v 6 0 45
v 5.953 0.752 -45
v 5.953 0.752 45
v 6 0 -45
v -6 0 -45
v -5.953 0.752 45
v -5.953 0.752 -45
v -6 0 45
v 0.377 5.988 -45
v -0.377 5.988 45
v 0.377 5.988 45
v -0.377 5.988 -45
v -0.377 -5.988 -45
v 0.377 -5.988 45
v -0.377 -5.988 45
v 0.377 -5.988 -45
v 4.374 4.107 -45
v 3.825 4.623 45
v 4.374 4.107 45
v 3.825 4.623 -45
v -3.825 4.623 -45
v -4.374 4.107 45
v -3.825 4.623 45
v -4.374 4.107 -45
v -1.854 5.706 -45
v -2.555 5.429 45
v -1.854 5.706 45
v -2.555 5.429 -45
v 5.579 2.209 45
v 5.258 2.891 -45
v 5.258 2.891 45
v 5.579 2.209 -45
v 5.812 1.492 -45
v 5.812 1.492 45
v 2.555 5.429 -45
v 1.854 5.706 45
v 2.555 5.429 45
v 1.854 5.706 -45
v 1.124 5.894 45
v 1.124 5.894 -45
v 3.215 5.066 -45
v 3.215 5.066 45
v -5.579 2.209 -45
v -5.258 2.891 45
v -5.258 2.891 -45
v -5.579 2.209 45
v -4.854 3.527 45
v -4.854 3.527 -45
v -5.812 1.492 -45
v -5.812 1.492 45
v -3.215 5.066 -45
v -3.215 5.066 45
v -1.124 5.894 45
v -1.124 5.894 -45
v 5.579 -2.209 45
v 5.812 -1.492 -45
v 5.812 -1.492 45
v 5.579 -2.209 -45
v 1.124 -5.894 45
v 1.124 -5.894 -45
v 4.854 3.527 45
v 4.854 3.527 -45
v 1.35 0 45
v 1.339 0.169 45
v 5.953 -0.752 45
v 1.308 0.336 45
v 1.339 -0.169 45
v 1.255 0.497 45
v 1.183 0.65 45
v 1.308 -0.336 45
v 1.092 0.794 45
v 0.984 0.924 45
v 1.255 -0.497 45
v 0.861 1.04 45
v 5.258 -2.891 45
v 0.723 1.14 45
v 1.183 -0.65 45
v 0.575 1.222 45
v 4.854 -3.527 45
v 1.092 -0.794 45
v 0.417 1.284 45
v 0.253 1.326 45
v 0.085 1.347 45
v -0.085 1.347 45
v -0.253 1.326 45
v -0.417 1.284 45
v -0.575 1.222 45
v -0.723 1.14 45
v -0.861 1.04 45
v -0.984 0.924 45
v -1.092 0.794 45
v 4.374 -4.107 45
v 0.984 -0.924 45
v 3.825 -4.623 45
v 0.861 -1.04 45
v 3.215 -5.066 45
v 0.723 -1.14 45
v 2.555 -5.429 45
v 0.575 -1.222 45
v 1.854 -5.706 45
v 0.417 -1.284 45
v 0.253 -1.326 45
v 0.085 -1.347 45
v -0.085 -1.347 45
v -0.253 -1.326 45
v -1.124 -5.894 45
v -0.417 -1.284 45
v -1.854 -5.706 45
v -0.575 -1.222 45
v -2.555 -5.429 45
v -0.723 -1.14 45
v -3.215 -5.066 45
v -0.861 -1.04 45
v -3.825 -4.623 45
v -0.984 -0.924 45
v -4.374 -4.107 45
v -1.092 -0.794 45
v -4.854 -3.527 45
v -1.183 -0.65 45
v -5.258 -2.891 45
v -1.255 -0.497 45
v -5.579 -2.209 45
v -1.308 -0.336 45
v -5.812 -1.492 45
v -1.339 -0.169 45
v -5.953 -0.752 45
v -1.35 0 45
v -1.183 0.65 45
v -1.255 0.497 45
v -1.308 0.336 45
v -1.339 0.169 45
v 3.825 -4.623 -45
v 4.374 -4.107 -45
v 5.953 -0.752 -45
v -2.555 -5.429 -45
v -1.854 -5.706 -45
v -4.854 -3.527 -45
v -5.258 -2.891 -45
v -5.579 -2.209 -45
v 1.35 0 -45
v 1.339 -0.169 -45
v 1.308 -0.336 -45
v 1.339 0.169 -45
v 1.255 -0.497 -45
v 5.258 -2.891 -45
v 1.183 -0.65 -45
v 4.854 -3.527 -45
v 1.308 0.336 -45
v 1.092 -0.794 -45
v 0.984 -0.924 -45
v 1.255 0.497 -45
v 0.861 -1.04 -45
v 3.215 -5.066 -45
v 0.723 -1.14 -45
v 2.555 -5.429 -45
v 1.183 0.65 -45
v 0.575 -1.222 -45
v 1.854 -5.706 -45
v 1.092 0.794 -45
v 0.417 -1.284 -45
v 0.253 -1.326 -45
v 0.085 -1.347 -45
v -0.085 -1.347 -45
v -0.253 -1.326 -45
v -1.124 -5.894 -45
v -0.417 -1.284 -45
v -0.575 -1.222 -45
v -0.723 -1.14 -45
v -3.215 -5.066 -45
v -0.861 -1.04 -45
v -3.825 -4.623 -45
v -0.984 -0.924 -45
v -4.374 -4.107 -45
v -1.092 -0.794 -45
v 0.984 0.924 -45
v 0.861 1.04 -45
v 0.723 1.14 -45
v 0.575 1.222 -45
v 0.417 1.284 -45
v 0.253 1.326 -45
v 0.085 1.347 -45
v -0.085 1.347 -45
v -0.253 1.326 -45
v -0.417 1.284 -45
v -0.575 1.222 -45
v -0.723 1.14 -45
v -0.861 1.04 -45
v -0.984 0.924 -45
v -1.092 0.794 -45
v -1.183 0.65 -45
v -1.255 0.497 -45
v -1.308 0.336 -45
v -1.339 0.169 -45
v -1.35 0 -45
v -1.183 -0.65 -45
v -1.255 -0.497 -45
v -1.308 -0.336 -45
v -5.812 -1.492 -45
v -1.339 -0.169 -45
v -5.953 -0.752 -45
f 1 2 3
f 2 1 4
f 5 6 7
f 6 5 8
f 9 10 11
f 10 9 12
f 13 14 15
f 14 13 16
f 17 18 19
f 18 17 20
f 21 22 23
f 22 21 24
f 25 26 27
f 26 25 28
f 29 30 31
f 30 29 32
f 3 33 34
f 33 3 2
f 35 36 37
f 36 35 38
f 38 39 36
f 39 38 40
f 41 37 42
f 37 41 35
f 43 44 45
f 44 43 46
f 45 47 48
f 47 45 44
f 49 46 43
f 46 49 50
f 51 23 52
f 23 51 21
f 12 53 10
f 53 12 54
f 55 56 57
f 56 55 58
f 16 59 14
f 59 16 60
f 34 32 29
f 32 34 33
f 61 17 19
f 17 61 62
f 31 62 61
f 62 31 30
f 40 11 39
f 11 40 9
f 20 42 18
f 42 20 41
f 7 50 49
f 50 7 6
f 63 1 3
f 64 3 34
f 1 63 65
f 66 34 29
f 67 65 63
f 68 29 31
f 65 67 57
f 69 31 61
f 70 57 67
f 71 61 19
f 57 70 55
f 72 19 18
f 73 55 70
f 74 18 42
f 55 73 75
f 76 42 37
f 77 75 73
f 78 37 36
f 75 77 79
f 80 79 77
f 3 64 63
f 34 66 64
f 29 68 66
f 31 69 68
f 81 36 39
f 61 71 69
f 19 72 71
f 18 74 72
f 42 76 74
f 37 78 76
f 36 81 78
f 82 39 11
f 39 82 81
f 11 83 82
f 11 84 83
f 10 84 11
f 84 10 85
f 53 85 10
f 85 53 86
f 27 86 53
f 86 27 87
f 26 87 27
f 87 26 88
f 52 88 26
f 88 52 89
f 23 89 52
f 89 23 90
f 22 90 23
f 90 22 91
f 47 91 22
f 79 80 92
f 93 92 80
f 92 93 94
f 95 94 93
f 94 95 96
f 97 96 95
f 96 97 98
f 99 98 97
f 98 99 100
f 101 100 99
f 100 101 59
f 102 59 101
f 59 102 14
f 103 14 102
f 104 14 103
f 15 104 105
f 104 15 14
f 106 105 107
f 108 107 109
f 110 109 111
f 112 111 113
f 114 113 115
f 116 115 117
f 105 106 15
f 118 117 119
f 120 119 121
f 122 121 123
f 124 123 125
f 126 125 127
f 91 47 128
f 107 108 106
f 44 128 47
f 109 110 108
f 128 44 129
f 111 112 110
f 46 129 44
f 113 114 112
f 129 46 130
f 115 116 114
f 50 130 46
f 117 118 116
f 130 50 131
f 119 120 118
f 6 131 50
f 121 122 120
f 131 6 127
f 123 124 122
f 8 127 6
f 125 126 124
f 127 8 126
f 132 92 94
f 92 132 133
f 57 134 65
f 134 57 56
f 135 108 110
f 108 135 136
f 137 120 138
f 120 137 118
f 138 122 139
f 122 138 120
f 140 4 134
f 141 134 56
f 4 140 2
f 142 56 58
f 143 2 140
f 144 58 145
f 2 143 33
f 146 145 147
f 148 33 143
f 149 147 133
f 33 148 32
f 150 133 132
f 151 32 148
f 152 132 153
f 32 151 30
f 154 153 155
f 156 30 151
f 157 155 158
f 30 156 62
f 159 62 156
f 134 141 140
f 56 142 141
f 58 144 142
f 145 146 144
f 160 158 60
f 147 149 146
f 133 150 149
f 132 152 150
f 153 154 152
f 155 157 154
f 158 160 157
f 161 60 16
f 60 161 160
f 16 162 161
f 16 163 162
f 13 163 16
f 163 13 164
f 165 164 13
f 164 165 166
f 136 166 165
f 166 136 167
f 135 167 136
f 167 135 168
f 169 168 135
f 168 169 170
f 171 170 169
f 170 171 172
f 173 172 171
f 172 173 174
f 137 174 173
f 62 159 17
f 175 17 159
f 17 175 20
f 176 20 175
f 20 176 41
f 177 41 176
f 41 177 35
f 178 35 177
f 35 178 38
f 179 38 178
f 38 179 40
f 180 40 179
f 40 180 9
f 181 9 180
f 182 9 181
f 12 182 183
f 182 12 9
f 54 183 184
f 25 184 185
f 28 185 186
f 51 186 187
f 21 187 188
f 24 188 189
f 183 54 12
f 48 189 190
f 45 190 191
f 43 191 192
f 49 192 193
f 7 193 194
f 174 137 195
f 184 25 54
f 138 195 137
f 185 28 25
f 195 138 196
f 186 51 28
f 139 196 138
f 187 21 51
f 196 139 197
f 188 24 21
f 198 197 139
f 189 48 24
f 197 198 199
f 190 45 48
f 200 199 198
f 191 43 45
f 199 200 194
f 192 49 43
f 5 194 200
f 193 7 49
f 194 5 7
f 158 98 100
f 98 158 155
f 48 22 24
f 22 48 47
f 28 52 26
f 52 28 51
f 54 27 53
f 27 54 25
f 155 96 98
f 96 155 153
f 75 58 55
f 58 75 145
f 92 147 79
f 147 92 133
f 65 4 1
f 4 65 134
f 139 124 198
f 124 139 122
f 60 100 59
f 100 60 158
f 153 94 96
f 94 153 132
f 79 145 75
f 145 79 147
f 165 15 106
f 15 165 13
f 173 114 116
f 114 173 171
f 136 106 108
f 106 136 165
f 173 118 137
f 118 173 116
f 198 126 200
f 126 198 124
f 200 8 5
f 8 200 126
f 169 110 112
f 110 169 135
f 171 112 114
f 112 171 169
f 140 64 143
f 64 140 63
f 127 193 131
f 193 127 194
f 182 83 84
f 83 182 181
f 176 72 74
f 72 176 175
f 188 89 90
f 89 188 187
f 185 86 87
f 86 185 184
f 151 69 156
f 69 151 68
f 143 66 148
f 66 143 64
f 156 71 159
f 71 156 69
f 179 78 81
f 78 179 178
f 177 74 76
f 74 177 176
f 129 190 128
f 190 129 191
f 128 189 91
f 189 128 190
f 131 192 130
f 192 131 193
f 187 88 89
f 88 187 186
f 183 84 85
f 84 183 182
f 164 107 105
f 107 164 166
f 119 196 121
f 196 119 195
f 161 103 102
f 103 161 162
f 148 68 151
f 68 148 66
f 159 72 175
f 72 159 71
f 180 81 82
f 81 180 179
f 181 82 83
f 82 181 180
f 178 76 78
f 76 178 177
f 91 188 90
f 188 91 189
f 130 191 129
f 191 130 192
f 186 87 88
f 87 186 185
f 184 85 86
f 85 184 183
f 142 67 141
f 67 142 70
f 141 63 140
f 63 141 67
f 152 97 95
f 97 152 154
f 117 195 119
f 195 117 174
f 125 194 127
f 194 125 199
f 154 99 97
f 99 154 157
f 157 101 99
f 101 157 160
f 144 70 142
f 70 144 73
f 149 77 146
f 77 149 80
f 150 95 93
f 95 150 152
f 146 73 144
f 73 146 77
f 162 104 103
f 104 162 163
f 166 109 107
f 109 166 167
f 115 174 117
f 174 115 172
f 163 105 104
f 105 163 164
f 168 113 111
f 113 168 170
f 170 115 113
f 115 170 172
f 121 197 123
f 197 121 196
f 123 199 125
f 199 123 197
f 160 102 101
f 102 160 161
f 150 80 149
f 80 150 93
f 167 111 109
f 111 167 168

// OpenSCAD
$fn = 50;


difference() {
	union() {
		translate(v = [0, 0, -45.0000000000]) {
			cylinder(h = 90, r = 6.0000000000);
		}
	}
	union() {
		translate(v = [0, 0, -100.0000000000]) {
			cylinder(h = 200, r = 1.3500000000);
		}
	}
}
